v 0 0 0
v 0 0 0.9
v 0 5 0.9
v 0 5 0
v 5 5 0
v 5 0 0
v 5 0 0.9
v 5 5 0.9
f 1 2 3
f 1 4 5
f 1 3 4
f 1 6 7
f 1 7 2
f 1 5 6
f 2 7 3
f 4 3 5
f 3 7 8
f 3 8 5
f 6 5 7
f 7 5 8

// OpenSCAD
/* Warning, this is a very basic generator with a lot of approximation 
input data : [QFN, Q9X, 5x5x0.9mm, 40, , D, C04-00047D]
generated by com.zoubworld.electronics.cad.model3d.Basic
Date : Sun Feb 15 10:50:48 CET 2026
*/

//body
color("black")
translate([0,0,0])
cube([5.0,5.0,0.9], center=false);
